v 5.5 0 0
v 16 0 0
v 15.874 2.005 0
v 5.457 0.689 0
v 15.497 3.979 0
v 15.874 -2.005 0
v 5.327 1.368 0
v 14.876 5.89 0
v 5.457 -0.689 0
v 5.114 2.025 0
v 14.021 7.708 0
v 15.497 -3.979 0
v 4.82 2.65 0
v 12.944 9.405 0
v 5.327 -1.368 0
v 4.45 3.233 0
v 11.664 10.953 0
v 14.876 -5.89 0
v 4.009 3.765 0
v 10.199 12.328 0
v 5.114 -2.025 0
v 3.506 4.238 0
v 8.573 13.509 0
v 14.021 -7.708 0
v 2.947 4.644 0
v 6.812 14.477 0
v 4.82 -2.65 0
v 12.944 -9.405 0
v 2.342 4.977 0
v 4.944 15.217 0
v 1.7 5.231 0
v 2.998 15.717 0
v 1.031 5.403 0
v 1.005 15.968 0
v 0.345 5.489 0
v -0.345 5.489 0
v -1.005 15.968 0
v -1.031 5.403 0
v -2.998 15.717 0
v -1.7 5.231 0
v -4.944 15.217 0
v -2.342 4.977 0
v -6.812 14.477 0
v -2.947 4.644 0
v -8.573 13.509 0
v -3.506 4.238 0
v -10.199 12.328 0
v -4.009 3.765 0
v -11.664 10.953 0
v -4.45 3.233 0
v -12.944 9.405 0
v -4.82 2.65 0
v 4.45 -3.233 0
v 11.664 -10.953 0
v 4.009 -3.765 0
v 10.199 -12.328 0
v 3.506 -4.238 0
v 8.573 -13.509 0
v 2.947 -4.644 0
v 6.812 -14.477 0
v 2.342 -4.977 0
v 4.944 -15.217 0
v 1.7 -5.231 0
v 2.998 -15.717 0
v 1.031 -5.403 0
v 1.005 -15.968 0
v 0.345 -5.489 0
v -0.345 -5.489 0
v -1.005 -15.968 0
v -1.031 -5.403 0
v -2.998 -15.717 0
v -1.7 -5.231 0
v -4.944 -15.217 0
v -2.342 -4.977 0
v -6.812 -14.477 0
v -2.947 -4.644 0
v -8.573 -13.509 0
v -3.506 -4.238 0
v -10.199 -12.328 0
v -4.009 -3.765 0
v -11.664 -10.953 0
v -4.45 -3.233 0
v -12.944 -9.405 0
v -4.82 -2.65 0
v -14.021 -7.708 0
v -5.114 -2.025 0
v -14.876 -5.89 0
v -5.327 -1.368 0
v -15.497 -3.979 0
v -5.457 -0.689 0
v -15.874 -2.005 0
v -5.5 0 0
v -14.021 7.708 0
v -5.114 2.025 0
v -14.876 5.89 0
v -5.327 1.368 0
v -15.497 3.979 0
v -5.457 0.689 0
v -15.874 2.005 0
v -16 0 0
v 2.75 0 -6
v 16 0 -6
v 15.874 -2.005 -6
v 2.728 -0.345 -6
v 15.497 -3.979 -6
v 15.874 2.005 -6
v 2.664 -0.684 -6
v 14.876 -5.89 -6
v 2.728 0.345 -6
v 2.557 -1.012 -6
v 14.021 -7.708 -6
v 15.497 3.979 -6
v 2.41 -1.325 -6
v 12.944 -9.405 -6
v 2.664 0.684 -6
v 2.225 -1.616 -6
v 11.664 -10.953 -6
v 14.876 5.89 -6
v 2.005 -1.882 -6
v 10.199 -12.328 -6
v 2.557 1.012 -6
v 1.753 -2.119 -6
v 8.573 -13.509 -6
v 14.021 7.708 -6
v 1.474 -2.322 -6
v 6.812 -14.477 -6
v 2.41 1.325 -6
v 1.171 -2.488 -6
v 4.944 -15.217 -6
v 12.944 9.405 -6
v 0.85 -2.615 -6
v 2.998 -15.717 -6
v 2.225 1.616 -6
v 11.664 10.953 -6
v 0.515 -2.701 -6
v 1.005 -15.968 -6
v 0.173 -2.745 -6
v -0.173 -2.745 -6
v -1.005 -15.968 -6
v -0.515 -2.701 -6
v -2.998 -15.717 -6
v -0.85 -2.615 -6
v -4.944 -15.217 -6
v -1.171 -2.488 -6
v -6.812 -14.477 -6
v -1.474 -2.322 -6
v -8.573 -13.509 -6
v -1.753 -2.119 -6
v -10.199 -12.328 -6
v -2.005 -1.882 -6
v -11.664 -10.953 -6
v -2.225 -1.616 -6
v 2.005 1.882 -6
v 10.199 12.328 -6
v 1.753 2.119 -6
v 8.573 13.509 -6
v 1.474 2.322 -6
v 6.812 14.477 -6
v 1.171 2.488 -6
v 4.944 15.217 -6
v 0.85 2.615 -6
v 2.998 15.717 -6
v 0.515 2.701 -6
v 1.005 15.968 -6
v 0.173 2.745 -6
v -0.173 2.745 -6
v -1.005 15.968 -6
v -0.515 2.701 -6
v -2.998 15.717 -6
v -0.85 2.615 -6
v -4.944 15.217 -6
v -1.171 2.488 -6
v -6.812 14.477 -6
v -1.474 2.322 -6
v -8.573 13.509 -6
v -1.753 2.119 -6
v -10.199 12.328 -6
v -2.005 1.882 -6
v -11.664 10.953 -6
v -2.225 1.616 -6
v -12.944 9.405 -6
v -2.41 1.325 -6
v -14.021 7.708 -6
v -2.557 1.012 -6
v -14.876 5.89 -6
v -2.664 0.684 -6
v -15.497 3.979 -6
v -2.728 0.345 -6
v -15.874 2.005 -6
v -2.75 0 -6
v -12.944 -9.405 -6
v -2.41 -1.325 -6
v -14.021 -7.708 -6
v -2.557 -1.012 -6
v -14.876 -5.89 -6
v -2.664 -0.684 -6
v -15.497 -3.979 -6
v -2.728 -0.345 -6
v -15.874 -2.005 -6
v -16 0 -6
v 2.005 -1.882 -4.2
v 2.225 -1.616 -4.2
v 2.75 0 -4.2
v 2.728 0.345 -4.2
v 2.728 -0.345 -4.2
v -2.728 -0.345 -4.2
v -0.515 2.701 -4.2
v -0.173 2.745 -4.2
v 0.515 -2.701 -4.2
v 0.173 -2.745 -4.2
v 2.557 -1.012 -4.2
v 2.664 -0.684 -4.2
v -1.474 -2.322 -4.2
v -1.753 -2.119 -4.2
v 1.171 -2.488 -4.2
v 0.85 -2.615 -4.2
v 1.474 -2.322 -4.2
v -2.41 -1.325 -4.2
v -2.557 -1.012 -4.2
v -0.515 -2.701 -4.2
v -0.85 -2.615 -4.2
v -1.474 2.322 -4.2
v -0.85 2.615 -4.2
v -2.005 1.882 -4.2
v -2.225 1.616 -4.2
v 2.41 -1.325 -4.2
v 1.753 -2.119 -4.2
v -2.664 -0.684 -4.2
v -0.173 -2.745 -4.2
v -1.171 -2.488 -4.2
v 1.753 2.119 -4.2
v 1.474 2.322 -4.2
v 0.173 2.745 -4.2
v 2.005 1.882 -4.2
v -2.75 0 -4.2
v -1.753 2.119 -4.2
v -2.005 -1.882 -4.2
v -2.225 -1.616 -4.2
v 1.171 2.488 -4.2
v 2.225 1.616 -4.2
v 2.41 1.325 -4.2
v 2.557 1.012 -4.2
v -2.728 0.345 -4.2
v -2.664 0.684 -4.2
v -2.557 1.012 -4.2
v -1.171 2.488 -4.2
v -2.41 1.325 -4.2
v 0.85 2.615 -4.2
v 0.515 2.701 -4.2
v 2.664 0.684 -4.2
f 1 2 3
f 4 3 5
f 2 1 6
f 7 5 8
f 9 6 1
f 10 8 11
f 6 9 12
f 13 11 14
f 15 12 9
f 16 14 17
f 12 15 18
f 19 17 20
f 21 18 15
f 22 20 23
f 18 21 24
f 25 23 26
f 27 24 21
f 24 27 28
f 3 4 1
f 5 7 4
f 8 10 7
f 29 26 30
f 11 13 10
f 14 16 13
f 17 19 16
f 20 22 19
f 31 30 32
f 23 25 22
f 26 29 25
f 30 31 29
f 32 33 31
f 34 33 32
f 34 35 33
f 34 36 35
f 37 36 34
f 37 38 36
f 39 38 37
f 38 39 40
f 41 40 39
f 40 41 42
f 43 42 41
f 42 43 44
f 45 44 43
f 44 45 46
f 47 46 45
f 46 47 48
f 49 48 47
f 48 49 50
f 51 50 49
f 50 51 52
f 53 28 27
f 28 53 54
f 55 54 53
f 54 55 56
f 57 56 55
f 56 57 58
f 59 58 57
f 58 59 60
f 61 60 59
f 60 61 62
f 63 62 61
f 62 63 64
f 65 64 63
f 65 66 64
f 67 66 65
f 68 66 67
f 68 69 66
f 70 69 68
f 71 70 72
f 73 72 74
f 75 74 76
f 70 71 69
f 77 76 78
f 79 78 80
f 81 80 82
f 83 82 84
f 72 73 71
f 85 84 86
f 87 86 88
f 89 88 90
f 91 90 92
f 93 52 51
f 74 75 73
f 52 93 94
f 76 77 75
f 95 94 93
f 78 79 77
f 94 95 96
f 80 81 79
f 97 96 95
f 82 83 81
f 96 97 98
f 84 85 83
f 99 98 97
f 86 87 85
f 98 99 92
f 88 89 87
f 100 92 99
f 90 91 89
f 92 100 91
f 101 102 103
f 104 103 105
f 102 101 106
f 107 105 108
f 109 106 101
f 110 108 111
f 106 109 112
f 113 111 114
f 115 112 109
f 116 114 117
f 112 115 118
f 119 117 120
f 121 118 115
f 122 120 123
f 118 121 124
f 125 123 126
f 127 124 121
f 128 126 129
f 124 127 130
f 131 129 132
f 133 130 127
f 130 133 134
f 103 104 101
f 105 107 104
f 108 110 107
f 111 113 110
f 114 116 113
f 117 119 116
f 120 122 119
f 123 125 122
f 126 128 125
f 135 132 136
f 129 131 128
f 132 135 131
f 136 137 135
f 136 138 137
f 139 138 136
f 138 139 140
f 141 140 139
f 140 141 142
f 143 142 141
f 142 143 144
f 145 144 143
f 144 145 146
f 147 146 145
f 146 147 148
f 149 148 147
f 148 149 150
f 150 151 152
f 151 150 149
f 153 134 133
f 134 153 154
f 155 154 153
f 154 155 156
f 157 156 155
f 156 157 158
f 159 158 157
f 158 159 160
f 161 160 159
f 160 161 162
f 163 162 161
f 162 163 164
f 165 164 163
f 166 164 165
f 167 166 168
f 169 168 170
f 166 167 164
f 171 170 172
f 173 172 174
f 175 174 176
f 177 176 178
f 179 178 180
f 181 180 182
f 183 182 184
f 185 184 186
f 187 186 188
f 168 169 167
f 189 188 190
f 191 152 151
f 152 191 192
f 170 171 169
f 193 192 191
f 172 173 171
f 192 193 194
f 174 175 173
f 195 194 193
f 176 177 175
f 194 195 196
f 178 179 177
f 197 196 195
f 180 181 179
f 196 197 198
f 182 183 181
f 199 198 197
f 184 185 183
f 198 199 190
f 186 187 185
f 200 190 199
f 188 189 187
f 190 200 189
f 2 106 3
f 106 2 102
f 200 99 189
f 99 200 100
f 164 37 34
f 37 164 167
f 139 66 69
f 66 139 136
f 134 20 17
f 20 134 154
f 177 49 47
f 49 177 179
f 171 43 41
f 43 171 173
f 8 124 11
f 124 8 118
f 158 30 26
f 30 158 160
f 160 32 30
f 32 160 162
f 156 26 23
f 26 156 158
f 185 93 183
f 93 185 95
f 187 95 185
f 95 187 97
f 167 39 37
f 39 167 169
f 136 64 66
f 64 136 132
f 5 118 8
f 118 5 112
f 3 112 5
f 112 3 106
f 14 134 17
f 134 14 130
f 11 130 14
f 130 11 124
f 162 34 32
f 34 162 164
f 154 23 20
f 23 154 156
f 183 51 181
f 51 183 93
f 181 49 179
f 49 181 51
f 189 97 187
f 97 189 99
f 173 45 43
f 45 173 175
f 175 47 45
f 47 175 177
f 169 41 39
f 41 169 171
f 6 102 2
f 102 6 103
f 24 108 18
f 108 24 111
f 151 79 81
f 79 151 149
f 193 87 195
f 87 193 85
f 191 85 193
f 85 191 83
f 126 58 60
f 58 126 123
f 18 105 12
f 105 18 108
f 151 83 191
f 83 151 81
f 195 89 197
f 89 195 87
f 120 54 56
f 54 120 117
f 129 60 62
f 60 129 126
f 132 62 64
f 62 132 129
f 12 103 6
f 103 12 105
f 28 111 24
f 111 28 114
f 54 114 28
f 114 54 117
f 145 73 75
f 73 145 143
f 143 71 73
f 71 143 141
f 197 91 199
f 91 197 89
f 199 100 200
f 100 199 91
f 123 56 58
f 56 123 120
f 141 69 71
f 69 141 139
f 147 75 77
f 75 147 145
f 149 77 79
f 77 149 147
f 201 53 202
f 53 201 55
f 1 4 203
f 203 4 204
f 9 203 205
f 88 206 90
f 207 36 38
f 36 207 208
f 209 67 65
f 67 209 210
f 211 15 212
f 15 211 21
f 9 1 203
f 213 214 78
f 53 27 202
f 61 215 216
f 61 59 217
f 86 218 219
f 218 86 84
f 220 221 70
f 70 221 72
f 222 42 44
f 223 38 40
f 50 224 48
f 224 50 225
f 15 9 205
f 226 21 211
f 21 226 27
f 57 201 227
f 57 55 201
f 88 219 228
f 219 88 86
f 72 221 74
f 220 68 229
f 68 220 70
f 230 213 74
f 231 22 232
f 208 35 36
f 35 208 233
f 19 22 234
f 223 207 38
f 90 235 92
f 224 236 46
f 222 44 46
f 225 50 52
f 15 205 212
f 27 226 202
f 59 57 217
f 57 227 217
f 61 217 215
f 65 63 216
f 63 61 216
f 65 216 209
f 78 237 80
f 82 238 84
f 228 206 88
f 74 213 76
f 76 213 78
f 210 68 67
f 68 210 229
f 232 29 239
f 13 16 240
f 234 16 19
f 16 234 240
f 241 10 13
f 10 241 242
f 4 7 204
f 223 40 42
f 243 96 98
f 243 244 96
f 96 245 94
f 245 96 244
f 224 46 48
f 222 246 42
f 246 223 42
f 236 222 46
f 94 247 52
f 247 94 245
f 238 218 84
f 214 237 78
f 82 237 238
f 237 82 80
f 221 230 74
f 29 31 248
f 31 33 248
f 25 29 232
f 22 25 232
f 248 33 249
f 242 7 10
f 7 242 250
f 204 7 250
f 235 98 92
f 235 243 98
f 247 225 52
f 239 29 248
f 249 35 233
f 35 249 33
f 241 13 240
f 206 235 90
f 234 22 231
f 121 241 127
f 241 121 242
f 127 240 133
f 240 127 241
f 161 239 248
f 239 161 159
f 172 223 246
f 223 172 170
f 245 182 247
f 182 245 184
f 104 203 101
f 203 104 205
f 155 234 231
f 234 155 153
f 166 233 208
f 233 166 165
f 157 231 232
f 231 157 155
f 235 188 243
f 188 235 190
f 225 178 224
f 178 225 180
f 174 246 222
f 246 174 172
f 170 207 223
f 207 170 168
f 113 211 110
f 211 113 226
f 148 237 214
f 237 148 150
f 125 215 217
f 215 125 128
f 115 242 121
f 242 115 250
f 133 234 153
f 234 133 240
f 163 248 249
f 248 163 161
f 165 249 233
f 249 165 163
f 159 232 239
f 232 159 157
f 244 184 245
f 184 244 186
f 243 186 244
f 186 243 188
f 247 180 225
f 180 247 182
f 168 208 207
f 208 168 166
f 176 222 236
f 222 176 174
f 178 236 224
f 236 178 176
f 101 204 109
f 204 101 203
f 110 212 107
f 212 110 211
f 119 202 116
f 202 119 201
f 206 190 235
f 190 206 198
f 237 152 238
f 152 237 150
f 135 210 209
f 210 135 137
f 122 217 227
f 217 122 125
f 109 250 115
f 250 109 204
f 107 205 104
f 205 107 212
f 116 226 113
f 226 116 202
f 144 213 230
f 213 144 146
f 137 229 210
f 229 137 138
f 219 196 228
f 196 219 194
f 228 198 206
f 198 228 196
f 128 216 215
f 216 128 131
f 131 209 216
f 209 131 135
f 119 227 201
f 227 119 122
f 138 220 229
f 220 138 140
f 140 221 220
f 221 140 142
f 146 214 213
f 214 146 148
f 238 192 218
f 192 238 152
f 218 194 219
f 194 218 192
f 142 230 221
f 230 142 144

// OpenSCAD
$fn = 50;


difference() {
	union() {
		translate(v = [0, 0, -6.0000000000]) {
			cylinder(h = 6, r = 10.0000000000);
		}
		translate(v = [0, 0, -6.0000000000]) {
			cylinder(h = 6, r = 16.0000000000);
		}
	}
	union() {
		translate(v = [0, 0, 0]) {
			rotate(a = [0, 0, 0]) {
				difference() {
					union() {
						#translate(v = [0, 0, -6.0000000000]) {
							cylinder(h = 6, r = 2.2500000000);
						}
						#translate(v = [0, 0, -4.2000000000]) {
							cylinder(h = 4.2000000000, r = 10.0000000000, r1 = 2.7500000000, r2 = 5.5000000000);
						}
						#translate(v = [0, 0, -6.0000000000]) {
							cylinder(h = 6, r = 2.7500000000);
						}
						#translate(v = [0, 0, -6.0000000000]) {
							cylinder(h = 6, r = 2.2500000000);
						}
					}
					union();
				}
			}
		}
	}
}
